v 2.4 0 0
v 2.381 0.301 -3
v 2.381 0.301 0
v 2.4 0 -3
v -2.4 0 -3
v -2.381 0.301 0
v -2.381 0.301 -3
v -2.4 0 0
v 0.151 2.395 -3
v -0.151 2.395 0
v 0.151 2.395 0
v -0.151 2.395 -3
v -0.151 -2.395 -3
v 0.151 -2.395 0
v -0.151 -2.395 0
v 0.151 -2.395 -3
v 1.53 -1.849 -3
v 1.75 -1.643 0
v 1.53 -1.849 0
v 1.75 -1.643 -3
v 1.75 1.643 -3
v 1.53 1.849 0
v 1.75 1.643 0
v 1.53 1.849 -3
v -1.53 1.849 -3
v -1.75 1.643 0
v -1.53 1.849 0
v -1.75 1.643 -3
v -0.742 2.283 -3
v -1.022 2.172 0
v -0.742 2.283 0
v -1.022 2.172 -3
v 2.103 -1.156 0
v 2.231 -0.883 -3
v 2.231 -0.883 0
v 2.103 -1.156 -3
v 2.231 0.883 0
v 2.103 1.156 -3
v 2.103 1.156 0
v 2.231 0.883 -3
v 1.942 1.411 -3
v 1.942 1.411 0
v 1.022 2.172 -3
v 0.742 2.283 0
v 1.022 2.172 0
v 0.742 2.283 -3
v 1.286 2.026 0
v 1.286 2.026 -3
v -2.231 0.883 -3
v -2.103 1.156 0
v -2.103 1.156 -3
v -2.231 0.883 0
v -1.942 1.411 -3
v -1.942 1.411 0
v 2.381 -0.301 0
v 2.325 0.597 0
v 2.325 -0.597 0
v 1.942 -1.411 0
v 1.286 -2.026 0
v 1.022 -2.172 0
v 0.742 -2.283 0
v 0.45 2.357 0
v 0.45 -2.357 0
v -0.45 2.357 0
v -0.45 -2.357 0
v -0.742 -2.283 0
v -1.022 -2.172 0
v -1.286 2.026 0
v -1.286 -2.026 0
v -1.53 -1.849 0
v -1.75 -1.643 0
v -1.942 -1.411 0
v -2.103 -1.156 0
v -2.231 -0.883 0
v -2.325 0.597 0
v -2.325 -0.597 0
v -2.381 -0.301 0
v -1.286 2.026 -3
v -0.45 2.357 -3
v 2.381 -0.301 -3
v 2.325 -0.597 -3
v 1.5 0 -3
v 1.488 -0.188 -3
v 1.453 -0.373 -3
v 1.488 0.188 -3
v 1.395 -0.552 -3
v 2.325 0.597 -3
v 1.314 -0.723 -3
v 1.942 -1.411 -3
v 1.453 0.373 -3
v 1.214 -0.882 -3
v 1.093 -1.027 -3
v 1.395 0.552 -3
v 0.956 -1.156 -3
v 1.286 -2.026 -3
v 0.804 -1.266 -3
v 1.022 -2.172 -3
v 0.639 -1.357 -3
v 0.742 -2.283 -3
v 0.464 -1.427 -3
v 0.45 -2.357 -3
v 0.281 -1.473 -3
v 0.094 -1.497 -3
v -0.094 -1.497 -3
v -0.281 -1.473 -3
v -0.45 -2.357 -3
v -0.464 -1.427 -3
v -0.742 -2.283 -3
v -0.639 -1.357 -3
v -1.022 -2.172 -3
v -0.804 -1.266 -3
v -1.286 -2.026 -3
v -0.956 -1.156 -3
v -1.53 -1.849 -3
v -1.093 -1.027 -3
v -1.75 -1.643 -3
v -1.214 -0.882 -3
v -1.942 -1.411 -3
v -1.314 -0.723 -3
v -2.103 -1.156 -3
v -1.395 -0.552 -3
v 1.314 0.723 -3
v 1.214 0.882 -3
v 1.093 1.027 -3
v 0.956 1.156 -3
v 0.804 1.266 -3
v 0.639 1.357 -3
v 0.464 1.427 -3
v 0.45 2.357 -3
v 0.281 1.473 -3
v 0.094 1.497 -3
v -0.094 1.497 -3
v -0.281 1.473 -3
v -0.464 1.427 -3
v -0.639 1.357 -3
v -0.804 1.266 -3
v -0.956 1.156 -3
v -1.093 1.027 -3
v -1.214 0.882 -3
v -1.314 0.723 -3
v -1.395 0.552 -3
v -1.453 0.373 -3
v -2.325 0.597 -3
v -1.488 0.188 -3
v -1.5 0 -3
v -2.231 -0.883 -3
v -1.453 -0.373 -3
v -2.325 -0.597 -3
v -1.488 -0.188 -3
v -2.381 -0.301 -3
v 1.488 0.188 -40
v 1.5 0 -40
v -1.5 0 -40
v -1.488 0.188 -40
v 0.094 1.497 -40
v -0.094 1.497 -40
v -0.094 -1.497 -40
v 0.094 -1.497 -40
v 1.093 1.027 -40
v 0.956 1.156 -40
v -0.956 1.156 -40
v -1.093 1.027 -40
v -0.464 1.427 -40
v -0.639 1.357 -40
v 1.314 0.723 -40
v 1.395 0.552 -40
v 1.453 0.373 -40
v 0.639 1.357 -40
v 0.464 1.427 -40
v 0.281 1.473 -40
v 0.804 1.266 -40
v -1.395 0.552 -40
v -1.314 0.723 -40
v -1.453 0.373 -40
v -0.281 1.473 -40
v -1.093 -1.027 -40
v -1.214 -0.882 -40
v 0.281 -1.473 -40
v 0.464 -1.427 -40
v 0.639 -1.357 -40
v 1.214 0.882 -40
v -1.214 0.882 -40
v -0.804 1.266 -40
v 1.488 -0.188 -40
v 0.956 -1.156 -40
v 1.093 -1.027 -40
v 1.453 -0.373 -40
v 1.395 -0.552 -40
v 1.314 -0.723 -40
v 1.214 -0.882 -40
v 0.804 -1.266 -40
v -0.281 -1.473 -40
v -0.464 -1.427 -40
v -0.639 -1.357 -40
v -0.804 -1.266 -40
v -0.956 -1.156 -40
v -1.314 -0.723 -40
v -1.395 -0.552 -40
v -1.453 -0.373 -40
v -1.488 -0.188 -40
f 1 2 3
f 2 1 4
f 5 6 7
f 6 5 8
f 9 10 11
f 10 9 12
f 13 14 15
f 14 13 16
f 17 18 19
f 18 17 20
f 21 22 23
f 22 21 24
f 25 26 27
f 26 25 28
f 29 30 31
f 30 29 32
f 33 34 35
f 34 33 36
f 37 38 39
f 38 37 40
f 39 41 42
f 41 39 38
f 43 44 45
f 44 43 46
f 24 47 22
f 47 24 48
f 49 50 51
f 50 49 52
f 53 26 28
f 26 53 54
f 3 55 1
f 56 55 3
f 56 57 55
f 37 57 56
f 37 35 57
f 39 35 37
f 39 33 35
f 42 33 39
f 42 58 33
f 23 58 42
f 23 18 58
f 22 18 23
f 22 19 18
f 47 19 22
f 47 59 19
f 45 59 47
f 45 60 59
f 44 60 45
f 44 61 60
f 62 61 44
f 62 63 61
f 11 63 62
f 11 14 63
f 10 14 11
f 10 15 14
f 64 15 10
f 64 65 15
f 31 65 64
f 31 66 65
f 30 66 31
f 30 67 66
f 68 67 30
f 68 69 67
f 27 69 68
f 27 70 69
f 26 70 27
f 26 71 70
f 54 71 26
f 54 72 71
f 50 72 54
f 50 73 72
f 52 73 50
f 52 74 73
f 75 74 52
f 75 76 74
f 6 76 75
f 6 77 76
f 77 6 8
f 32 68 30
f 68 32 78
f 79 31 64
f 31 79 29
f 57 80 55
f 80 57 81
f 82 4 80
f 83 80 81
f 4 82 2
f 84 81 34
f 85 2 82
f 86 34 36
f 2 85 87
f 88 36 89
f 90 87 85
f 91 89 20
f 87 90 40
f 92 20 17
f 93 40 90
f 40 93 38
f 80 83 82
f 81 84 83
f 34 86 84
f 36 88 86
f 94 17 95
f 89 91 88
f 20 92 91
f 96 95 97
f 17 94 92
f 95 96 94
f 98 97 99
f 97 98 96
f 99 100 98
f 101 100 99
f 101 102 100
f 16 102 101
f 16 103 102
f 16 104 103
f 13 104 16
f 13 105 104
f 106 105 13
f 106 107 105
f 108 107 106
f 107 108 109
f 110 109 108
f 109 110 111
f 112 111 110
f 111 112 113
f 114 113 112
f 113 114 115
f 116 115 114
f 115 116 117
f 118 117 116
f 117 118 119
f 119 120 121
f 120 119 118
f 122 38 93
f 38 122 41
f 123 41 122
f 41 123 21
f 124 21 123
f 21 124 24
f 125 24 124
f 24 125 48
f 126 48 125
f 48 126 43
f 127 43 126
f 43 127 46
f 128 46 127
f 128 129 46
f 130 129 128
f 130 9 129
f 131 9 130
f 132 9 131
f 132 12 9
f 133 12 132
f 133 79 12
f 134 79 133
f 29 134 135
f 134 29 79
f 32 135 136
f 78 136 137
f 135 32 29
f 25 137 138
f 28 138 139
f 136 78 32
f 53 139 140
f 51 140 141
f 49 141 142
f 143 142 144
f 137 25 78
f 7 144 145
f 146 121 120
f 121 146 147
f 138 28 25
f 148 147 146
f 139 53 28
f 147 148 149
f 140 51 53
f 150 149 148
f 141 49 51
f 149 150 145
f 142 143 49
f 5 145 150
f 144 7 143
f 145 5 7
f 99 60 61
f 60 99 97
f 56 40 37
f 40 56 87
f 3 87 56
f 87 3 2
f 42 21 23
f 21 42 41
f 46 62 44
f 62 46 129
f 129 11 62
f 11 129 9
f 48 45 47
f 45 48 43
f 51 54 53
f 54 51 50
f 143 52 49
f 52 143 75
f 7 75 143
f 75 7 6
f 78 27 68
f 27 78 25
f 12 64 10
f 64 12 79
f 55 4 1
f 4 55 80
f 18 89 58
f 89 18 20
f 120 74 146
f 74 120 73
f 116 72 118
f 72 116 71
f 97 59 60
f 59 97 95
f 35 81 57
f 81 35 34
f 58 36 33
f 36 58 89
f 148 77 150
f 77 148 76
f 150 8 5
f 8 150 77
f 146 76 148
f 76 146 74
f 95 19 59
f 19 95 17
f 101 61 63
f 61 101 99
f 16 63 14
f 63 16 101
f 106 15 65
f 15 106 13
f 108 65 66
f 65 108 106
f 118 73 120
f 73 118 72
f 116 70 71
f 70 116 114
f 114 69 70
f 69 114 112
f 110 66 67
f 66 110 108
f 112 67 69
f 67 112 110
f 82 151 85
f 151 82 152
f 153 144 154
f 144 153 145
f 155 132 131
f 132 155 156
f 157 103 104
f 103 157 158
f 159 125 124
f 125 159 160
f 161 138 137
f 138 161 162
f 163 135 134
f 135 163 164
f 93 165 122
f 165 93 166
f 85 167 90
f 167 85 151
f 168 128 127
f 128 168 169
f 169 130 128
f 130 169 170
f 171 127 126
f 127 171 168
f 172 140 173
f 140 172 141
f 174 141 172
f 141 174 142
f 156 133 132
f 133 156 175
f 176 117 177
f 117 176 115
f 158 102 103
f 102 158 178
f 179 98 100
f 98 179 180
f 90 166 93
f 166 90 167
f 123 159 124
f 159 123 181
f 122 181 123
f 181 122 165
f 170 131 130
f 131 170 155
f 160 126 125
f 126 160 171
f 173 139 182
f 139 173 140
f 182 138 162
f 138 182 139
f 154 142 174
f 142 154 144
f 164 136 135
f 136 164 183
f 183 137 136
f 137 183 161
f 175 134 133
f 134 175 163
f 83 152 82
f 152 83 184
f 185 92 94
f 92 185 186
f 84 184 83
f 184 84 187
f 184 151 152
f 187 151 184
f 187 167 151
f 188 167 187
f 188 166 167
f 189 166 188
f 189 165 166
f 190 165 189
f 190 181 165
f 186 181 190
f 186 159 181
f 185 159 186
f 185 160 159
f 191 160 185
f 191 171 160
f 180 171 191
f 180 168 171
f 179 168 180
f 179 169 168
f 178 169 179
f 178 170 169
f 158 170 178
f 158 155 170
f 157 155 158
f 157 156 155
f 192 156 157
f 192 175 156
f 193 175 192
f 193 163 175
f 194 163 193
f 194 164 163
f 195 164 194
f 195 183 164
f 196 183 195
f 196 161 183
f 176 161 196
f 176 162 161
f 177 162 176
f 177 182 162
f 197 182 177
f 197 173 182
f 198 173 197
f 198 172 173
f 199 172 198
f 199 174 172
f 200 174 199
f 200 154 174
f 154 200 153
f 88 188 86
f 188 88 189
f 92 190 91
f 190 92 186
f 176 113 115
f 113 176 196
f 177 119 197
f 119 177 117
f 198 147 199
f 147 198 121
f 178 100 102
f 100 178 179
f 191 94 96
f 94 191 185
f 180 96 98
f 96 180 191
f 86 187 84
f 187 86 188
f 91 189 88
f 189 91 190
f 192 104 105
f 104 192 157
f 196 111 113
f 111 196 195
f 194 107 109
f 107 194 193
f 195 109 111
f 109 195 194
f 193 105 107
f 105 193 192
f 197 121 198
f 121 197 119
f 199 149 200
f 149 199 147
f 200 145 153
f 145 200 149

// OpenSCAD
$fn = 50;


difference() {
	union() {
		translate(v = [0, 0, -3]) {
			rotate(a = [0, 0, 0]) {
				cylinder(h = 3, r1 = 2.4000000000, r2 = 2.4000000000);
			}
		}
		translate(v = [0, 0, -40]) {
			rotate(a = [0, 0, 0]) {
				cylinder(h = 40, r = 1.5000000000);
			}
		}
	}
	union();
}
